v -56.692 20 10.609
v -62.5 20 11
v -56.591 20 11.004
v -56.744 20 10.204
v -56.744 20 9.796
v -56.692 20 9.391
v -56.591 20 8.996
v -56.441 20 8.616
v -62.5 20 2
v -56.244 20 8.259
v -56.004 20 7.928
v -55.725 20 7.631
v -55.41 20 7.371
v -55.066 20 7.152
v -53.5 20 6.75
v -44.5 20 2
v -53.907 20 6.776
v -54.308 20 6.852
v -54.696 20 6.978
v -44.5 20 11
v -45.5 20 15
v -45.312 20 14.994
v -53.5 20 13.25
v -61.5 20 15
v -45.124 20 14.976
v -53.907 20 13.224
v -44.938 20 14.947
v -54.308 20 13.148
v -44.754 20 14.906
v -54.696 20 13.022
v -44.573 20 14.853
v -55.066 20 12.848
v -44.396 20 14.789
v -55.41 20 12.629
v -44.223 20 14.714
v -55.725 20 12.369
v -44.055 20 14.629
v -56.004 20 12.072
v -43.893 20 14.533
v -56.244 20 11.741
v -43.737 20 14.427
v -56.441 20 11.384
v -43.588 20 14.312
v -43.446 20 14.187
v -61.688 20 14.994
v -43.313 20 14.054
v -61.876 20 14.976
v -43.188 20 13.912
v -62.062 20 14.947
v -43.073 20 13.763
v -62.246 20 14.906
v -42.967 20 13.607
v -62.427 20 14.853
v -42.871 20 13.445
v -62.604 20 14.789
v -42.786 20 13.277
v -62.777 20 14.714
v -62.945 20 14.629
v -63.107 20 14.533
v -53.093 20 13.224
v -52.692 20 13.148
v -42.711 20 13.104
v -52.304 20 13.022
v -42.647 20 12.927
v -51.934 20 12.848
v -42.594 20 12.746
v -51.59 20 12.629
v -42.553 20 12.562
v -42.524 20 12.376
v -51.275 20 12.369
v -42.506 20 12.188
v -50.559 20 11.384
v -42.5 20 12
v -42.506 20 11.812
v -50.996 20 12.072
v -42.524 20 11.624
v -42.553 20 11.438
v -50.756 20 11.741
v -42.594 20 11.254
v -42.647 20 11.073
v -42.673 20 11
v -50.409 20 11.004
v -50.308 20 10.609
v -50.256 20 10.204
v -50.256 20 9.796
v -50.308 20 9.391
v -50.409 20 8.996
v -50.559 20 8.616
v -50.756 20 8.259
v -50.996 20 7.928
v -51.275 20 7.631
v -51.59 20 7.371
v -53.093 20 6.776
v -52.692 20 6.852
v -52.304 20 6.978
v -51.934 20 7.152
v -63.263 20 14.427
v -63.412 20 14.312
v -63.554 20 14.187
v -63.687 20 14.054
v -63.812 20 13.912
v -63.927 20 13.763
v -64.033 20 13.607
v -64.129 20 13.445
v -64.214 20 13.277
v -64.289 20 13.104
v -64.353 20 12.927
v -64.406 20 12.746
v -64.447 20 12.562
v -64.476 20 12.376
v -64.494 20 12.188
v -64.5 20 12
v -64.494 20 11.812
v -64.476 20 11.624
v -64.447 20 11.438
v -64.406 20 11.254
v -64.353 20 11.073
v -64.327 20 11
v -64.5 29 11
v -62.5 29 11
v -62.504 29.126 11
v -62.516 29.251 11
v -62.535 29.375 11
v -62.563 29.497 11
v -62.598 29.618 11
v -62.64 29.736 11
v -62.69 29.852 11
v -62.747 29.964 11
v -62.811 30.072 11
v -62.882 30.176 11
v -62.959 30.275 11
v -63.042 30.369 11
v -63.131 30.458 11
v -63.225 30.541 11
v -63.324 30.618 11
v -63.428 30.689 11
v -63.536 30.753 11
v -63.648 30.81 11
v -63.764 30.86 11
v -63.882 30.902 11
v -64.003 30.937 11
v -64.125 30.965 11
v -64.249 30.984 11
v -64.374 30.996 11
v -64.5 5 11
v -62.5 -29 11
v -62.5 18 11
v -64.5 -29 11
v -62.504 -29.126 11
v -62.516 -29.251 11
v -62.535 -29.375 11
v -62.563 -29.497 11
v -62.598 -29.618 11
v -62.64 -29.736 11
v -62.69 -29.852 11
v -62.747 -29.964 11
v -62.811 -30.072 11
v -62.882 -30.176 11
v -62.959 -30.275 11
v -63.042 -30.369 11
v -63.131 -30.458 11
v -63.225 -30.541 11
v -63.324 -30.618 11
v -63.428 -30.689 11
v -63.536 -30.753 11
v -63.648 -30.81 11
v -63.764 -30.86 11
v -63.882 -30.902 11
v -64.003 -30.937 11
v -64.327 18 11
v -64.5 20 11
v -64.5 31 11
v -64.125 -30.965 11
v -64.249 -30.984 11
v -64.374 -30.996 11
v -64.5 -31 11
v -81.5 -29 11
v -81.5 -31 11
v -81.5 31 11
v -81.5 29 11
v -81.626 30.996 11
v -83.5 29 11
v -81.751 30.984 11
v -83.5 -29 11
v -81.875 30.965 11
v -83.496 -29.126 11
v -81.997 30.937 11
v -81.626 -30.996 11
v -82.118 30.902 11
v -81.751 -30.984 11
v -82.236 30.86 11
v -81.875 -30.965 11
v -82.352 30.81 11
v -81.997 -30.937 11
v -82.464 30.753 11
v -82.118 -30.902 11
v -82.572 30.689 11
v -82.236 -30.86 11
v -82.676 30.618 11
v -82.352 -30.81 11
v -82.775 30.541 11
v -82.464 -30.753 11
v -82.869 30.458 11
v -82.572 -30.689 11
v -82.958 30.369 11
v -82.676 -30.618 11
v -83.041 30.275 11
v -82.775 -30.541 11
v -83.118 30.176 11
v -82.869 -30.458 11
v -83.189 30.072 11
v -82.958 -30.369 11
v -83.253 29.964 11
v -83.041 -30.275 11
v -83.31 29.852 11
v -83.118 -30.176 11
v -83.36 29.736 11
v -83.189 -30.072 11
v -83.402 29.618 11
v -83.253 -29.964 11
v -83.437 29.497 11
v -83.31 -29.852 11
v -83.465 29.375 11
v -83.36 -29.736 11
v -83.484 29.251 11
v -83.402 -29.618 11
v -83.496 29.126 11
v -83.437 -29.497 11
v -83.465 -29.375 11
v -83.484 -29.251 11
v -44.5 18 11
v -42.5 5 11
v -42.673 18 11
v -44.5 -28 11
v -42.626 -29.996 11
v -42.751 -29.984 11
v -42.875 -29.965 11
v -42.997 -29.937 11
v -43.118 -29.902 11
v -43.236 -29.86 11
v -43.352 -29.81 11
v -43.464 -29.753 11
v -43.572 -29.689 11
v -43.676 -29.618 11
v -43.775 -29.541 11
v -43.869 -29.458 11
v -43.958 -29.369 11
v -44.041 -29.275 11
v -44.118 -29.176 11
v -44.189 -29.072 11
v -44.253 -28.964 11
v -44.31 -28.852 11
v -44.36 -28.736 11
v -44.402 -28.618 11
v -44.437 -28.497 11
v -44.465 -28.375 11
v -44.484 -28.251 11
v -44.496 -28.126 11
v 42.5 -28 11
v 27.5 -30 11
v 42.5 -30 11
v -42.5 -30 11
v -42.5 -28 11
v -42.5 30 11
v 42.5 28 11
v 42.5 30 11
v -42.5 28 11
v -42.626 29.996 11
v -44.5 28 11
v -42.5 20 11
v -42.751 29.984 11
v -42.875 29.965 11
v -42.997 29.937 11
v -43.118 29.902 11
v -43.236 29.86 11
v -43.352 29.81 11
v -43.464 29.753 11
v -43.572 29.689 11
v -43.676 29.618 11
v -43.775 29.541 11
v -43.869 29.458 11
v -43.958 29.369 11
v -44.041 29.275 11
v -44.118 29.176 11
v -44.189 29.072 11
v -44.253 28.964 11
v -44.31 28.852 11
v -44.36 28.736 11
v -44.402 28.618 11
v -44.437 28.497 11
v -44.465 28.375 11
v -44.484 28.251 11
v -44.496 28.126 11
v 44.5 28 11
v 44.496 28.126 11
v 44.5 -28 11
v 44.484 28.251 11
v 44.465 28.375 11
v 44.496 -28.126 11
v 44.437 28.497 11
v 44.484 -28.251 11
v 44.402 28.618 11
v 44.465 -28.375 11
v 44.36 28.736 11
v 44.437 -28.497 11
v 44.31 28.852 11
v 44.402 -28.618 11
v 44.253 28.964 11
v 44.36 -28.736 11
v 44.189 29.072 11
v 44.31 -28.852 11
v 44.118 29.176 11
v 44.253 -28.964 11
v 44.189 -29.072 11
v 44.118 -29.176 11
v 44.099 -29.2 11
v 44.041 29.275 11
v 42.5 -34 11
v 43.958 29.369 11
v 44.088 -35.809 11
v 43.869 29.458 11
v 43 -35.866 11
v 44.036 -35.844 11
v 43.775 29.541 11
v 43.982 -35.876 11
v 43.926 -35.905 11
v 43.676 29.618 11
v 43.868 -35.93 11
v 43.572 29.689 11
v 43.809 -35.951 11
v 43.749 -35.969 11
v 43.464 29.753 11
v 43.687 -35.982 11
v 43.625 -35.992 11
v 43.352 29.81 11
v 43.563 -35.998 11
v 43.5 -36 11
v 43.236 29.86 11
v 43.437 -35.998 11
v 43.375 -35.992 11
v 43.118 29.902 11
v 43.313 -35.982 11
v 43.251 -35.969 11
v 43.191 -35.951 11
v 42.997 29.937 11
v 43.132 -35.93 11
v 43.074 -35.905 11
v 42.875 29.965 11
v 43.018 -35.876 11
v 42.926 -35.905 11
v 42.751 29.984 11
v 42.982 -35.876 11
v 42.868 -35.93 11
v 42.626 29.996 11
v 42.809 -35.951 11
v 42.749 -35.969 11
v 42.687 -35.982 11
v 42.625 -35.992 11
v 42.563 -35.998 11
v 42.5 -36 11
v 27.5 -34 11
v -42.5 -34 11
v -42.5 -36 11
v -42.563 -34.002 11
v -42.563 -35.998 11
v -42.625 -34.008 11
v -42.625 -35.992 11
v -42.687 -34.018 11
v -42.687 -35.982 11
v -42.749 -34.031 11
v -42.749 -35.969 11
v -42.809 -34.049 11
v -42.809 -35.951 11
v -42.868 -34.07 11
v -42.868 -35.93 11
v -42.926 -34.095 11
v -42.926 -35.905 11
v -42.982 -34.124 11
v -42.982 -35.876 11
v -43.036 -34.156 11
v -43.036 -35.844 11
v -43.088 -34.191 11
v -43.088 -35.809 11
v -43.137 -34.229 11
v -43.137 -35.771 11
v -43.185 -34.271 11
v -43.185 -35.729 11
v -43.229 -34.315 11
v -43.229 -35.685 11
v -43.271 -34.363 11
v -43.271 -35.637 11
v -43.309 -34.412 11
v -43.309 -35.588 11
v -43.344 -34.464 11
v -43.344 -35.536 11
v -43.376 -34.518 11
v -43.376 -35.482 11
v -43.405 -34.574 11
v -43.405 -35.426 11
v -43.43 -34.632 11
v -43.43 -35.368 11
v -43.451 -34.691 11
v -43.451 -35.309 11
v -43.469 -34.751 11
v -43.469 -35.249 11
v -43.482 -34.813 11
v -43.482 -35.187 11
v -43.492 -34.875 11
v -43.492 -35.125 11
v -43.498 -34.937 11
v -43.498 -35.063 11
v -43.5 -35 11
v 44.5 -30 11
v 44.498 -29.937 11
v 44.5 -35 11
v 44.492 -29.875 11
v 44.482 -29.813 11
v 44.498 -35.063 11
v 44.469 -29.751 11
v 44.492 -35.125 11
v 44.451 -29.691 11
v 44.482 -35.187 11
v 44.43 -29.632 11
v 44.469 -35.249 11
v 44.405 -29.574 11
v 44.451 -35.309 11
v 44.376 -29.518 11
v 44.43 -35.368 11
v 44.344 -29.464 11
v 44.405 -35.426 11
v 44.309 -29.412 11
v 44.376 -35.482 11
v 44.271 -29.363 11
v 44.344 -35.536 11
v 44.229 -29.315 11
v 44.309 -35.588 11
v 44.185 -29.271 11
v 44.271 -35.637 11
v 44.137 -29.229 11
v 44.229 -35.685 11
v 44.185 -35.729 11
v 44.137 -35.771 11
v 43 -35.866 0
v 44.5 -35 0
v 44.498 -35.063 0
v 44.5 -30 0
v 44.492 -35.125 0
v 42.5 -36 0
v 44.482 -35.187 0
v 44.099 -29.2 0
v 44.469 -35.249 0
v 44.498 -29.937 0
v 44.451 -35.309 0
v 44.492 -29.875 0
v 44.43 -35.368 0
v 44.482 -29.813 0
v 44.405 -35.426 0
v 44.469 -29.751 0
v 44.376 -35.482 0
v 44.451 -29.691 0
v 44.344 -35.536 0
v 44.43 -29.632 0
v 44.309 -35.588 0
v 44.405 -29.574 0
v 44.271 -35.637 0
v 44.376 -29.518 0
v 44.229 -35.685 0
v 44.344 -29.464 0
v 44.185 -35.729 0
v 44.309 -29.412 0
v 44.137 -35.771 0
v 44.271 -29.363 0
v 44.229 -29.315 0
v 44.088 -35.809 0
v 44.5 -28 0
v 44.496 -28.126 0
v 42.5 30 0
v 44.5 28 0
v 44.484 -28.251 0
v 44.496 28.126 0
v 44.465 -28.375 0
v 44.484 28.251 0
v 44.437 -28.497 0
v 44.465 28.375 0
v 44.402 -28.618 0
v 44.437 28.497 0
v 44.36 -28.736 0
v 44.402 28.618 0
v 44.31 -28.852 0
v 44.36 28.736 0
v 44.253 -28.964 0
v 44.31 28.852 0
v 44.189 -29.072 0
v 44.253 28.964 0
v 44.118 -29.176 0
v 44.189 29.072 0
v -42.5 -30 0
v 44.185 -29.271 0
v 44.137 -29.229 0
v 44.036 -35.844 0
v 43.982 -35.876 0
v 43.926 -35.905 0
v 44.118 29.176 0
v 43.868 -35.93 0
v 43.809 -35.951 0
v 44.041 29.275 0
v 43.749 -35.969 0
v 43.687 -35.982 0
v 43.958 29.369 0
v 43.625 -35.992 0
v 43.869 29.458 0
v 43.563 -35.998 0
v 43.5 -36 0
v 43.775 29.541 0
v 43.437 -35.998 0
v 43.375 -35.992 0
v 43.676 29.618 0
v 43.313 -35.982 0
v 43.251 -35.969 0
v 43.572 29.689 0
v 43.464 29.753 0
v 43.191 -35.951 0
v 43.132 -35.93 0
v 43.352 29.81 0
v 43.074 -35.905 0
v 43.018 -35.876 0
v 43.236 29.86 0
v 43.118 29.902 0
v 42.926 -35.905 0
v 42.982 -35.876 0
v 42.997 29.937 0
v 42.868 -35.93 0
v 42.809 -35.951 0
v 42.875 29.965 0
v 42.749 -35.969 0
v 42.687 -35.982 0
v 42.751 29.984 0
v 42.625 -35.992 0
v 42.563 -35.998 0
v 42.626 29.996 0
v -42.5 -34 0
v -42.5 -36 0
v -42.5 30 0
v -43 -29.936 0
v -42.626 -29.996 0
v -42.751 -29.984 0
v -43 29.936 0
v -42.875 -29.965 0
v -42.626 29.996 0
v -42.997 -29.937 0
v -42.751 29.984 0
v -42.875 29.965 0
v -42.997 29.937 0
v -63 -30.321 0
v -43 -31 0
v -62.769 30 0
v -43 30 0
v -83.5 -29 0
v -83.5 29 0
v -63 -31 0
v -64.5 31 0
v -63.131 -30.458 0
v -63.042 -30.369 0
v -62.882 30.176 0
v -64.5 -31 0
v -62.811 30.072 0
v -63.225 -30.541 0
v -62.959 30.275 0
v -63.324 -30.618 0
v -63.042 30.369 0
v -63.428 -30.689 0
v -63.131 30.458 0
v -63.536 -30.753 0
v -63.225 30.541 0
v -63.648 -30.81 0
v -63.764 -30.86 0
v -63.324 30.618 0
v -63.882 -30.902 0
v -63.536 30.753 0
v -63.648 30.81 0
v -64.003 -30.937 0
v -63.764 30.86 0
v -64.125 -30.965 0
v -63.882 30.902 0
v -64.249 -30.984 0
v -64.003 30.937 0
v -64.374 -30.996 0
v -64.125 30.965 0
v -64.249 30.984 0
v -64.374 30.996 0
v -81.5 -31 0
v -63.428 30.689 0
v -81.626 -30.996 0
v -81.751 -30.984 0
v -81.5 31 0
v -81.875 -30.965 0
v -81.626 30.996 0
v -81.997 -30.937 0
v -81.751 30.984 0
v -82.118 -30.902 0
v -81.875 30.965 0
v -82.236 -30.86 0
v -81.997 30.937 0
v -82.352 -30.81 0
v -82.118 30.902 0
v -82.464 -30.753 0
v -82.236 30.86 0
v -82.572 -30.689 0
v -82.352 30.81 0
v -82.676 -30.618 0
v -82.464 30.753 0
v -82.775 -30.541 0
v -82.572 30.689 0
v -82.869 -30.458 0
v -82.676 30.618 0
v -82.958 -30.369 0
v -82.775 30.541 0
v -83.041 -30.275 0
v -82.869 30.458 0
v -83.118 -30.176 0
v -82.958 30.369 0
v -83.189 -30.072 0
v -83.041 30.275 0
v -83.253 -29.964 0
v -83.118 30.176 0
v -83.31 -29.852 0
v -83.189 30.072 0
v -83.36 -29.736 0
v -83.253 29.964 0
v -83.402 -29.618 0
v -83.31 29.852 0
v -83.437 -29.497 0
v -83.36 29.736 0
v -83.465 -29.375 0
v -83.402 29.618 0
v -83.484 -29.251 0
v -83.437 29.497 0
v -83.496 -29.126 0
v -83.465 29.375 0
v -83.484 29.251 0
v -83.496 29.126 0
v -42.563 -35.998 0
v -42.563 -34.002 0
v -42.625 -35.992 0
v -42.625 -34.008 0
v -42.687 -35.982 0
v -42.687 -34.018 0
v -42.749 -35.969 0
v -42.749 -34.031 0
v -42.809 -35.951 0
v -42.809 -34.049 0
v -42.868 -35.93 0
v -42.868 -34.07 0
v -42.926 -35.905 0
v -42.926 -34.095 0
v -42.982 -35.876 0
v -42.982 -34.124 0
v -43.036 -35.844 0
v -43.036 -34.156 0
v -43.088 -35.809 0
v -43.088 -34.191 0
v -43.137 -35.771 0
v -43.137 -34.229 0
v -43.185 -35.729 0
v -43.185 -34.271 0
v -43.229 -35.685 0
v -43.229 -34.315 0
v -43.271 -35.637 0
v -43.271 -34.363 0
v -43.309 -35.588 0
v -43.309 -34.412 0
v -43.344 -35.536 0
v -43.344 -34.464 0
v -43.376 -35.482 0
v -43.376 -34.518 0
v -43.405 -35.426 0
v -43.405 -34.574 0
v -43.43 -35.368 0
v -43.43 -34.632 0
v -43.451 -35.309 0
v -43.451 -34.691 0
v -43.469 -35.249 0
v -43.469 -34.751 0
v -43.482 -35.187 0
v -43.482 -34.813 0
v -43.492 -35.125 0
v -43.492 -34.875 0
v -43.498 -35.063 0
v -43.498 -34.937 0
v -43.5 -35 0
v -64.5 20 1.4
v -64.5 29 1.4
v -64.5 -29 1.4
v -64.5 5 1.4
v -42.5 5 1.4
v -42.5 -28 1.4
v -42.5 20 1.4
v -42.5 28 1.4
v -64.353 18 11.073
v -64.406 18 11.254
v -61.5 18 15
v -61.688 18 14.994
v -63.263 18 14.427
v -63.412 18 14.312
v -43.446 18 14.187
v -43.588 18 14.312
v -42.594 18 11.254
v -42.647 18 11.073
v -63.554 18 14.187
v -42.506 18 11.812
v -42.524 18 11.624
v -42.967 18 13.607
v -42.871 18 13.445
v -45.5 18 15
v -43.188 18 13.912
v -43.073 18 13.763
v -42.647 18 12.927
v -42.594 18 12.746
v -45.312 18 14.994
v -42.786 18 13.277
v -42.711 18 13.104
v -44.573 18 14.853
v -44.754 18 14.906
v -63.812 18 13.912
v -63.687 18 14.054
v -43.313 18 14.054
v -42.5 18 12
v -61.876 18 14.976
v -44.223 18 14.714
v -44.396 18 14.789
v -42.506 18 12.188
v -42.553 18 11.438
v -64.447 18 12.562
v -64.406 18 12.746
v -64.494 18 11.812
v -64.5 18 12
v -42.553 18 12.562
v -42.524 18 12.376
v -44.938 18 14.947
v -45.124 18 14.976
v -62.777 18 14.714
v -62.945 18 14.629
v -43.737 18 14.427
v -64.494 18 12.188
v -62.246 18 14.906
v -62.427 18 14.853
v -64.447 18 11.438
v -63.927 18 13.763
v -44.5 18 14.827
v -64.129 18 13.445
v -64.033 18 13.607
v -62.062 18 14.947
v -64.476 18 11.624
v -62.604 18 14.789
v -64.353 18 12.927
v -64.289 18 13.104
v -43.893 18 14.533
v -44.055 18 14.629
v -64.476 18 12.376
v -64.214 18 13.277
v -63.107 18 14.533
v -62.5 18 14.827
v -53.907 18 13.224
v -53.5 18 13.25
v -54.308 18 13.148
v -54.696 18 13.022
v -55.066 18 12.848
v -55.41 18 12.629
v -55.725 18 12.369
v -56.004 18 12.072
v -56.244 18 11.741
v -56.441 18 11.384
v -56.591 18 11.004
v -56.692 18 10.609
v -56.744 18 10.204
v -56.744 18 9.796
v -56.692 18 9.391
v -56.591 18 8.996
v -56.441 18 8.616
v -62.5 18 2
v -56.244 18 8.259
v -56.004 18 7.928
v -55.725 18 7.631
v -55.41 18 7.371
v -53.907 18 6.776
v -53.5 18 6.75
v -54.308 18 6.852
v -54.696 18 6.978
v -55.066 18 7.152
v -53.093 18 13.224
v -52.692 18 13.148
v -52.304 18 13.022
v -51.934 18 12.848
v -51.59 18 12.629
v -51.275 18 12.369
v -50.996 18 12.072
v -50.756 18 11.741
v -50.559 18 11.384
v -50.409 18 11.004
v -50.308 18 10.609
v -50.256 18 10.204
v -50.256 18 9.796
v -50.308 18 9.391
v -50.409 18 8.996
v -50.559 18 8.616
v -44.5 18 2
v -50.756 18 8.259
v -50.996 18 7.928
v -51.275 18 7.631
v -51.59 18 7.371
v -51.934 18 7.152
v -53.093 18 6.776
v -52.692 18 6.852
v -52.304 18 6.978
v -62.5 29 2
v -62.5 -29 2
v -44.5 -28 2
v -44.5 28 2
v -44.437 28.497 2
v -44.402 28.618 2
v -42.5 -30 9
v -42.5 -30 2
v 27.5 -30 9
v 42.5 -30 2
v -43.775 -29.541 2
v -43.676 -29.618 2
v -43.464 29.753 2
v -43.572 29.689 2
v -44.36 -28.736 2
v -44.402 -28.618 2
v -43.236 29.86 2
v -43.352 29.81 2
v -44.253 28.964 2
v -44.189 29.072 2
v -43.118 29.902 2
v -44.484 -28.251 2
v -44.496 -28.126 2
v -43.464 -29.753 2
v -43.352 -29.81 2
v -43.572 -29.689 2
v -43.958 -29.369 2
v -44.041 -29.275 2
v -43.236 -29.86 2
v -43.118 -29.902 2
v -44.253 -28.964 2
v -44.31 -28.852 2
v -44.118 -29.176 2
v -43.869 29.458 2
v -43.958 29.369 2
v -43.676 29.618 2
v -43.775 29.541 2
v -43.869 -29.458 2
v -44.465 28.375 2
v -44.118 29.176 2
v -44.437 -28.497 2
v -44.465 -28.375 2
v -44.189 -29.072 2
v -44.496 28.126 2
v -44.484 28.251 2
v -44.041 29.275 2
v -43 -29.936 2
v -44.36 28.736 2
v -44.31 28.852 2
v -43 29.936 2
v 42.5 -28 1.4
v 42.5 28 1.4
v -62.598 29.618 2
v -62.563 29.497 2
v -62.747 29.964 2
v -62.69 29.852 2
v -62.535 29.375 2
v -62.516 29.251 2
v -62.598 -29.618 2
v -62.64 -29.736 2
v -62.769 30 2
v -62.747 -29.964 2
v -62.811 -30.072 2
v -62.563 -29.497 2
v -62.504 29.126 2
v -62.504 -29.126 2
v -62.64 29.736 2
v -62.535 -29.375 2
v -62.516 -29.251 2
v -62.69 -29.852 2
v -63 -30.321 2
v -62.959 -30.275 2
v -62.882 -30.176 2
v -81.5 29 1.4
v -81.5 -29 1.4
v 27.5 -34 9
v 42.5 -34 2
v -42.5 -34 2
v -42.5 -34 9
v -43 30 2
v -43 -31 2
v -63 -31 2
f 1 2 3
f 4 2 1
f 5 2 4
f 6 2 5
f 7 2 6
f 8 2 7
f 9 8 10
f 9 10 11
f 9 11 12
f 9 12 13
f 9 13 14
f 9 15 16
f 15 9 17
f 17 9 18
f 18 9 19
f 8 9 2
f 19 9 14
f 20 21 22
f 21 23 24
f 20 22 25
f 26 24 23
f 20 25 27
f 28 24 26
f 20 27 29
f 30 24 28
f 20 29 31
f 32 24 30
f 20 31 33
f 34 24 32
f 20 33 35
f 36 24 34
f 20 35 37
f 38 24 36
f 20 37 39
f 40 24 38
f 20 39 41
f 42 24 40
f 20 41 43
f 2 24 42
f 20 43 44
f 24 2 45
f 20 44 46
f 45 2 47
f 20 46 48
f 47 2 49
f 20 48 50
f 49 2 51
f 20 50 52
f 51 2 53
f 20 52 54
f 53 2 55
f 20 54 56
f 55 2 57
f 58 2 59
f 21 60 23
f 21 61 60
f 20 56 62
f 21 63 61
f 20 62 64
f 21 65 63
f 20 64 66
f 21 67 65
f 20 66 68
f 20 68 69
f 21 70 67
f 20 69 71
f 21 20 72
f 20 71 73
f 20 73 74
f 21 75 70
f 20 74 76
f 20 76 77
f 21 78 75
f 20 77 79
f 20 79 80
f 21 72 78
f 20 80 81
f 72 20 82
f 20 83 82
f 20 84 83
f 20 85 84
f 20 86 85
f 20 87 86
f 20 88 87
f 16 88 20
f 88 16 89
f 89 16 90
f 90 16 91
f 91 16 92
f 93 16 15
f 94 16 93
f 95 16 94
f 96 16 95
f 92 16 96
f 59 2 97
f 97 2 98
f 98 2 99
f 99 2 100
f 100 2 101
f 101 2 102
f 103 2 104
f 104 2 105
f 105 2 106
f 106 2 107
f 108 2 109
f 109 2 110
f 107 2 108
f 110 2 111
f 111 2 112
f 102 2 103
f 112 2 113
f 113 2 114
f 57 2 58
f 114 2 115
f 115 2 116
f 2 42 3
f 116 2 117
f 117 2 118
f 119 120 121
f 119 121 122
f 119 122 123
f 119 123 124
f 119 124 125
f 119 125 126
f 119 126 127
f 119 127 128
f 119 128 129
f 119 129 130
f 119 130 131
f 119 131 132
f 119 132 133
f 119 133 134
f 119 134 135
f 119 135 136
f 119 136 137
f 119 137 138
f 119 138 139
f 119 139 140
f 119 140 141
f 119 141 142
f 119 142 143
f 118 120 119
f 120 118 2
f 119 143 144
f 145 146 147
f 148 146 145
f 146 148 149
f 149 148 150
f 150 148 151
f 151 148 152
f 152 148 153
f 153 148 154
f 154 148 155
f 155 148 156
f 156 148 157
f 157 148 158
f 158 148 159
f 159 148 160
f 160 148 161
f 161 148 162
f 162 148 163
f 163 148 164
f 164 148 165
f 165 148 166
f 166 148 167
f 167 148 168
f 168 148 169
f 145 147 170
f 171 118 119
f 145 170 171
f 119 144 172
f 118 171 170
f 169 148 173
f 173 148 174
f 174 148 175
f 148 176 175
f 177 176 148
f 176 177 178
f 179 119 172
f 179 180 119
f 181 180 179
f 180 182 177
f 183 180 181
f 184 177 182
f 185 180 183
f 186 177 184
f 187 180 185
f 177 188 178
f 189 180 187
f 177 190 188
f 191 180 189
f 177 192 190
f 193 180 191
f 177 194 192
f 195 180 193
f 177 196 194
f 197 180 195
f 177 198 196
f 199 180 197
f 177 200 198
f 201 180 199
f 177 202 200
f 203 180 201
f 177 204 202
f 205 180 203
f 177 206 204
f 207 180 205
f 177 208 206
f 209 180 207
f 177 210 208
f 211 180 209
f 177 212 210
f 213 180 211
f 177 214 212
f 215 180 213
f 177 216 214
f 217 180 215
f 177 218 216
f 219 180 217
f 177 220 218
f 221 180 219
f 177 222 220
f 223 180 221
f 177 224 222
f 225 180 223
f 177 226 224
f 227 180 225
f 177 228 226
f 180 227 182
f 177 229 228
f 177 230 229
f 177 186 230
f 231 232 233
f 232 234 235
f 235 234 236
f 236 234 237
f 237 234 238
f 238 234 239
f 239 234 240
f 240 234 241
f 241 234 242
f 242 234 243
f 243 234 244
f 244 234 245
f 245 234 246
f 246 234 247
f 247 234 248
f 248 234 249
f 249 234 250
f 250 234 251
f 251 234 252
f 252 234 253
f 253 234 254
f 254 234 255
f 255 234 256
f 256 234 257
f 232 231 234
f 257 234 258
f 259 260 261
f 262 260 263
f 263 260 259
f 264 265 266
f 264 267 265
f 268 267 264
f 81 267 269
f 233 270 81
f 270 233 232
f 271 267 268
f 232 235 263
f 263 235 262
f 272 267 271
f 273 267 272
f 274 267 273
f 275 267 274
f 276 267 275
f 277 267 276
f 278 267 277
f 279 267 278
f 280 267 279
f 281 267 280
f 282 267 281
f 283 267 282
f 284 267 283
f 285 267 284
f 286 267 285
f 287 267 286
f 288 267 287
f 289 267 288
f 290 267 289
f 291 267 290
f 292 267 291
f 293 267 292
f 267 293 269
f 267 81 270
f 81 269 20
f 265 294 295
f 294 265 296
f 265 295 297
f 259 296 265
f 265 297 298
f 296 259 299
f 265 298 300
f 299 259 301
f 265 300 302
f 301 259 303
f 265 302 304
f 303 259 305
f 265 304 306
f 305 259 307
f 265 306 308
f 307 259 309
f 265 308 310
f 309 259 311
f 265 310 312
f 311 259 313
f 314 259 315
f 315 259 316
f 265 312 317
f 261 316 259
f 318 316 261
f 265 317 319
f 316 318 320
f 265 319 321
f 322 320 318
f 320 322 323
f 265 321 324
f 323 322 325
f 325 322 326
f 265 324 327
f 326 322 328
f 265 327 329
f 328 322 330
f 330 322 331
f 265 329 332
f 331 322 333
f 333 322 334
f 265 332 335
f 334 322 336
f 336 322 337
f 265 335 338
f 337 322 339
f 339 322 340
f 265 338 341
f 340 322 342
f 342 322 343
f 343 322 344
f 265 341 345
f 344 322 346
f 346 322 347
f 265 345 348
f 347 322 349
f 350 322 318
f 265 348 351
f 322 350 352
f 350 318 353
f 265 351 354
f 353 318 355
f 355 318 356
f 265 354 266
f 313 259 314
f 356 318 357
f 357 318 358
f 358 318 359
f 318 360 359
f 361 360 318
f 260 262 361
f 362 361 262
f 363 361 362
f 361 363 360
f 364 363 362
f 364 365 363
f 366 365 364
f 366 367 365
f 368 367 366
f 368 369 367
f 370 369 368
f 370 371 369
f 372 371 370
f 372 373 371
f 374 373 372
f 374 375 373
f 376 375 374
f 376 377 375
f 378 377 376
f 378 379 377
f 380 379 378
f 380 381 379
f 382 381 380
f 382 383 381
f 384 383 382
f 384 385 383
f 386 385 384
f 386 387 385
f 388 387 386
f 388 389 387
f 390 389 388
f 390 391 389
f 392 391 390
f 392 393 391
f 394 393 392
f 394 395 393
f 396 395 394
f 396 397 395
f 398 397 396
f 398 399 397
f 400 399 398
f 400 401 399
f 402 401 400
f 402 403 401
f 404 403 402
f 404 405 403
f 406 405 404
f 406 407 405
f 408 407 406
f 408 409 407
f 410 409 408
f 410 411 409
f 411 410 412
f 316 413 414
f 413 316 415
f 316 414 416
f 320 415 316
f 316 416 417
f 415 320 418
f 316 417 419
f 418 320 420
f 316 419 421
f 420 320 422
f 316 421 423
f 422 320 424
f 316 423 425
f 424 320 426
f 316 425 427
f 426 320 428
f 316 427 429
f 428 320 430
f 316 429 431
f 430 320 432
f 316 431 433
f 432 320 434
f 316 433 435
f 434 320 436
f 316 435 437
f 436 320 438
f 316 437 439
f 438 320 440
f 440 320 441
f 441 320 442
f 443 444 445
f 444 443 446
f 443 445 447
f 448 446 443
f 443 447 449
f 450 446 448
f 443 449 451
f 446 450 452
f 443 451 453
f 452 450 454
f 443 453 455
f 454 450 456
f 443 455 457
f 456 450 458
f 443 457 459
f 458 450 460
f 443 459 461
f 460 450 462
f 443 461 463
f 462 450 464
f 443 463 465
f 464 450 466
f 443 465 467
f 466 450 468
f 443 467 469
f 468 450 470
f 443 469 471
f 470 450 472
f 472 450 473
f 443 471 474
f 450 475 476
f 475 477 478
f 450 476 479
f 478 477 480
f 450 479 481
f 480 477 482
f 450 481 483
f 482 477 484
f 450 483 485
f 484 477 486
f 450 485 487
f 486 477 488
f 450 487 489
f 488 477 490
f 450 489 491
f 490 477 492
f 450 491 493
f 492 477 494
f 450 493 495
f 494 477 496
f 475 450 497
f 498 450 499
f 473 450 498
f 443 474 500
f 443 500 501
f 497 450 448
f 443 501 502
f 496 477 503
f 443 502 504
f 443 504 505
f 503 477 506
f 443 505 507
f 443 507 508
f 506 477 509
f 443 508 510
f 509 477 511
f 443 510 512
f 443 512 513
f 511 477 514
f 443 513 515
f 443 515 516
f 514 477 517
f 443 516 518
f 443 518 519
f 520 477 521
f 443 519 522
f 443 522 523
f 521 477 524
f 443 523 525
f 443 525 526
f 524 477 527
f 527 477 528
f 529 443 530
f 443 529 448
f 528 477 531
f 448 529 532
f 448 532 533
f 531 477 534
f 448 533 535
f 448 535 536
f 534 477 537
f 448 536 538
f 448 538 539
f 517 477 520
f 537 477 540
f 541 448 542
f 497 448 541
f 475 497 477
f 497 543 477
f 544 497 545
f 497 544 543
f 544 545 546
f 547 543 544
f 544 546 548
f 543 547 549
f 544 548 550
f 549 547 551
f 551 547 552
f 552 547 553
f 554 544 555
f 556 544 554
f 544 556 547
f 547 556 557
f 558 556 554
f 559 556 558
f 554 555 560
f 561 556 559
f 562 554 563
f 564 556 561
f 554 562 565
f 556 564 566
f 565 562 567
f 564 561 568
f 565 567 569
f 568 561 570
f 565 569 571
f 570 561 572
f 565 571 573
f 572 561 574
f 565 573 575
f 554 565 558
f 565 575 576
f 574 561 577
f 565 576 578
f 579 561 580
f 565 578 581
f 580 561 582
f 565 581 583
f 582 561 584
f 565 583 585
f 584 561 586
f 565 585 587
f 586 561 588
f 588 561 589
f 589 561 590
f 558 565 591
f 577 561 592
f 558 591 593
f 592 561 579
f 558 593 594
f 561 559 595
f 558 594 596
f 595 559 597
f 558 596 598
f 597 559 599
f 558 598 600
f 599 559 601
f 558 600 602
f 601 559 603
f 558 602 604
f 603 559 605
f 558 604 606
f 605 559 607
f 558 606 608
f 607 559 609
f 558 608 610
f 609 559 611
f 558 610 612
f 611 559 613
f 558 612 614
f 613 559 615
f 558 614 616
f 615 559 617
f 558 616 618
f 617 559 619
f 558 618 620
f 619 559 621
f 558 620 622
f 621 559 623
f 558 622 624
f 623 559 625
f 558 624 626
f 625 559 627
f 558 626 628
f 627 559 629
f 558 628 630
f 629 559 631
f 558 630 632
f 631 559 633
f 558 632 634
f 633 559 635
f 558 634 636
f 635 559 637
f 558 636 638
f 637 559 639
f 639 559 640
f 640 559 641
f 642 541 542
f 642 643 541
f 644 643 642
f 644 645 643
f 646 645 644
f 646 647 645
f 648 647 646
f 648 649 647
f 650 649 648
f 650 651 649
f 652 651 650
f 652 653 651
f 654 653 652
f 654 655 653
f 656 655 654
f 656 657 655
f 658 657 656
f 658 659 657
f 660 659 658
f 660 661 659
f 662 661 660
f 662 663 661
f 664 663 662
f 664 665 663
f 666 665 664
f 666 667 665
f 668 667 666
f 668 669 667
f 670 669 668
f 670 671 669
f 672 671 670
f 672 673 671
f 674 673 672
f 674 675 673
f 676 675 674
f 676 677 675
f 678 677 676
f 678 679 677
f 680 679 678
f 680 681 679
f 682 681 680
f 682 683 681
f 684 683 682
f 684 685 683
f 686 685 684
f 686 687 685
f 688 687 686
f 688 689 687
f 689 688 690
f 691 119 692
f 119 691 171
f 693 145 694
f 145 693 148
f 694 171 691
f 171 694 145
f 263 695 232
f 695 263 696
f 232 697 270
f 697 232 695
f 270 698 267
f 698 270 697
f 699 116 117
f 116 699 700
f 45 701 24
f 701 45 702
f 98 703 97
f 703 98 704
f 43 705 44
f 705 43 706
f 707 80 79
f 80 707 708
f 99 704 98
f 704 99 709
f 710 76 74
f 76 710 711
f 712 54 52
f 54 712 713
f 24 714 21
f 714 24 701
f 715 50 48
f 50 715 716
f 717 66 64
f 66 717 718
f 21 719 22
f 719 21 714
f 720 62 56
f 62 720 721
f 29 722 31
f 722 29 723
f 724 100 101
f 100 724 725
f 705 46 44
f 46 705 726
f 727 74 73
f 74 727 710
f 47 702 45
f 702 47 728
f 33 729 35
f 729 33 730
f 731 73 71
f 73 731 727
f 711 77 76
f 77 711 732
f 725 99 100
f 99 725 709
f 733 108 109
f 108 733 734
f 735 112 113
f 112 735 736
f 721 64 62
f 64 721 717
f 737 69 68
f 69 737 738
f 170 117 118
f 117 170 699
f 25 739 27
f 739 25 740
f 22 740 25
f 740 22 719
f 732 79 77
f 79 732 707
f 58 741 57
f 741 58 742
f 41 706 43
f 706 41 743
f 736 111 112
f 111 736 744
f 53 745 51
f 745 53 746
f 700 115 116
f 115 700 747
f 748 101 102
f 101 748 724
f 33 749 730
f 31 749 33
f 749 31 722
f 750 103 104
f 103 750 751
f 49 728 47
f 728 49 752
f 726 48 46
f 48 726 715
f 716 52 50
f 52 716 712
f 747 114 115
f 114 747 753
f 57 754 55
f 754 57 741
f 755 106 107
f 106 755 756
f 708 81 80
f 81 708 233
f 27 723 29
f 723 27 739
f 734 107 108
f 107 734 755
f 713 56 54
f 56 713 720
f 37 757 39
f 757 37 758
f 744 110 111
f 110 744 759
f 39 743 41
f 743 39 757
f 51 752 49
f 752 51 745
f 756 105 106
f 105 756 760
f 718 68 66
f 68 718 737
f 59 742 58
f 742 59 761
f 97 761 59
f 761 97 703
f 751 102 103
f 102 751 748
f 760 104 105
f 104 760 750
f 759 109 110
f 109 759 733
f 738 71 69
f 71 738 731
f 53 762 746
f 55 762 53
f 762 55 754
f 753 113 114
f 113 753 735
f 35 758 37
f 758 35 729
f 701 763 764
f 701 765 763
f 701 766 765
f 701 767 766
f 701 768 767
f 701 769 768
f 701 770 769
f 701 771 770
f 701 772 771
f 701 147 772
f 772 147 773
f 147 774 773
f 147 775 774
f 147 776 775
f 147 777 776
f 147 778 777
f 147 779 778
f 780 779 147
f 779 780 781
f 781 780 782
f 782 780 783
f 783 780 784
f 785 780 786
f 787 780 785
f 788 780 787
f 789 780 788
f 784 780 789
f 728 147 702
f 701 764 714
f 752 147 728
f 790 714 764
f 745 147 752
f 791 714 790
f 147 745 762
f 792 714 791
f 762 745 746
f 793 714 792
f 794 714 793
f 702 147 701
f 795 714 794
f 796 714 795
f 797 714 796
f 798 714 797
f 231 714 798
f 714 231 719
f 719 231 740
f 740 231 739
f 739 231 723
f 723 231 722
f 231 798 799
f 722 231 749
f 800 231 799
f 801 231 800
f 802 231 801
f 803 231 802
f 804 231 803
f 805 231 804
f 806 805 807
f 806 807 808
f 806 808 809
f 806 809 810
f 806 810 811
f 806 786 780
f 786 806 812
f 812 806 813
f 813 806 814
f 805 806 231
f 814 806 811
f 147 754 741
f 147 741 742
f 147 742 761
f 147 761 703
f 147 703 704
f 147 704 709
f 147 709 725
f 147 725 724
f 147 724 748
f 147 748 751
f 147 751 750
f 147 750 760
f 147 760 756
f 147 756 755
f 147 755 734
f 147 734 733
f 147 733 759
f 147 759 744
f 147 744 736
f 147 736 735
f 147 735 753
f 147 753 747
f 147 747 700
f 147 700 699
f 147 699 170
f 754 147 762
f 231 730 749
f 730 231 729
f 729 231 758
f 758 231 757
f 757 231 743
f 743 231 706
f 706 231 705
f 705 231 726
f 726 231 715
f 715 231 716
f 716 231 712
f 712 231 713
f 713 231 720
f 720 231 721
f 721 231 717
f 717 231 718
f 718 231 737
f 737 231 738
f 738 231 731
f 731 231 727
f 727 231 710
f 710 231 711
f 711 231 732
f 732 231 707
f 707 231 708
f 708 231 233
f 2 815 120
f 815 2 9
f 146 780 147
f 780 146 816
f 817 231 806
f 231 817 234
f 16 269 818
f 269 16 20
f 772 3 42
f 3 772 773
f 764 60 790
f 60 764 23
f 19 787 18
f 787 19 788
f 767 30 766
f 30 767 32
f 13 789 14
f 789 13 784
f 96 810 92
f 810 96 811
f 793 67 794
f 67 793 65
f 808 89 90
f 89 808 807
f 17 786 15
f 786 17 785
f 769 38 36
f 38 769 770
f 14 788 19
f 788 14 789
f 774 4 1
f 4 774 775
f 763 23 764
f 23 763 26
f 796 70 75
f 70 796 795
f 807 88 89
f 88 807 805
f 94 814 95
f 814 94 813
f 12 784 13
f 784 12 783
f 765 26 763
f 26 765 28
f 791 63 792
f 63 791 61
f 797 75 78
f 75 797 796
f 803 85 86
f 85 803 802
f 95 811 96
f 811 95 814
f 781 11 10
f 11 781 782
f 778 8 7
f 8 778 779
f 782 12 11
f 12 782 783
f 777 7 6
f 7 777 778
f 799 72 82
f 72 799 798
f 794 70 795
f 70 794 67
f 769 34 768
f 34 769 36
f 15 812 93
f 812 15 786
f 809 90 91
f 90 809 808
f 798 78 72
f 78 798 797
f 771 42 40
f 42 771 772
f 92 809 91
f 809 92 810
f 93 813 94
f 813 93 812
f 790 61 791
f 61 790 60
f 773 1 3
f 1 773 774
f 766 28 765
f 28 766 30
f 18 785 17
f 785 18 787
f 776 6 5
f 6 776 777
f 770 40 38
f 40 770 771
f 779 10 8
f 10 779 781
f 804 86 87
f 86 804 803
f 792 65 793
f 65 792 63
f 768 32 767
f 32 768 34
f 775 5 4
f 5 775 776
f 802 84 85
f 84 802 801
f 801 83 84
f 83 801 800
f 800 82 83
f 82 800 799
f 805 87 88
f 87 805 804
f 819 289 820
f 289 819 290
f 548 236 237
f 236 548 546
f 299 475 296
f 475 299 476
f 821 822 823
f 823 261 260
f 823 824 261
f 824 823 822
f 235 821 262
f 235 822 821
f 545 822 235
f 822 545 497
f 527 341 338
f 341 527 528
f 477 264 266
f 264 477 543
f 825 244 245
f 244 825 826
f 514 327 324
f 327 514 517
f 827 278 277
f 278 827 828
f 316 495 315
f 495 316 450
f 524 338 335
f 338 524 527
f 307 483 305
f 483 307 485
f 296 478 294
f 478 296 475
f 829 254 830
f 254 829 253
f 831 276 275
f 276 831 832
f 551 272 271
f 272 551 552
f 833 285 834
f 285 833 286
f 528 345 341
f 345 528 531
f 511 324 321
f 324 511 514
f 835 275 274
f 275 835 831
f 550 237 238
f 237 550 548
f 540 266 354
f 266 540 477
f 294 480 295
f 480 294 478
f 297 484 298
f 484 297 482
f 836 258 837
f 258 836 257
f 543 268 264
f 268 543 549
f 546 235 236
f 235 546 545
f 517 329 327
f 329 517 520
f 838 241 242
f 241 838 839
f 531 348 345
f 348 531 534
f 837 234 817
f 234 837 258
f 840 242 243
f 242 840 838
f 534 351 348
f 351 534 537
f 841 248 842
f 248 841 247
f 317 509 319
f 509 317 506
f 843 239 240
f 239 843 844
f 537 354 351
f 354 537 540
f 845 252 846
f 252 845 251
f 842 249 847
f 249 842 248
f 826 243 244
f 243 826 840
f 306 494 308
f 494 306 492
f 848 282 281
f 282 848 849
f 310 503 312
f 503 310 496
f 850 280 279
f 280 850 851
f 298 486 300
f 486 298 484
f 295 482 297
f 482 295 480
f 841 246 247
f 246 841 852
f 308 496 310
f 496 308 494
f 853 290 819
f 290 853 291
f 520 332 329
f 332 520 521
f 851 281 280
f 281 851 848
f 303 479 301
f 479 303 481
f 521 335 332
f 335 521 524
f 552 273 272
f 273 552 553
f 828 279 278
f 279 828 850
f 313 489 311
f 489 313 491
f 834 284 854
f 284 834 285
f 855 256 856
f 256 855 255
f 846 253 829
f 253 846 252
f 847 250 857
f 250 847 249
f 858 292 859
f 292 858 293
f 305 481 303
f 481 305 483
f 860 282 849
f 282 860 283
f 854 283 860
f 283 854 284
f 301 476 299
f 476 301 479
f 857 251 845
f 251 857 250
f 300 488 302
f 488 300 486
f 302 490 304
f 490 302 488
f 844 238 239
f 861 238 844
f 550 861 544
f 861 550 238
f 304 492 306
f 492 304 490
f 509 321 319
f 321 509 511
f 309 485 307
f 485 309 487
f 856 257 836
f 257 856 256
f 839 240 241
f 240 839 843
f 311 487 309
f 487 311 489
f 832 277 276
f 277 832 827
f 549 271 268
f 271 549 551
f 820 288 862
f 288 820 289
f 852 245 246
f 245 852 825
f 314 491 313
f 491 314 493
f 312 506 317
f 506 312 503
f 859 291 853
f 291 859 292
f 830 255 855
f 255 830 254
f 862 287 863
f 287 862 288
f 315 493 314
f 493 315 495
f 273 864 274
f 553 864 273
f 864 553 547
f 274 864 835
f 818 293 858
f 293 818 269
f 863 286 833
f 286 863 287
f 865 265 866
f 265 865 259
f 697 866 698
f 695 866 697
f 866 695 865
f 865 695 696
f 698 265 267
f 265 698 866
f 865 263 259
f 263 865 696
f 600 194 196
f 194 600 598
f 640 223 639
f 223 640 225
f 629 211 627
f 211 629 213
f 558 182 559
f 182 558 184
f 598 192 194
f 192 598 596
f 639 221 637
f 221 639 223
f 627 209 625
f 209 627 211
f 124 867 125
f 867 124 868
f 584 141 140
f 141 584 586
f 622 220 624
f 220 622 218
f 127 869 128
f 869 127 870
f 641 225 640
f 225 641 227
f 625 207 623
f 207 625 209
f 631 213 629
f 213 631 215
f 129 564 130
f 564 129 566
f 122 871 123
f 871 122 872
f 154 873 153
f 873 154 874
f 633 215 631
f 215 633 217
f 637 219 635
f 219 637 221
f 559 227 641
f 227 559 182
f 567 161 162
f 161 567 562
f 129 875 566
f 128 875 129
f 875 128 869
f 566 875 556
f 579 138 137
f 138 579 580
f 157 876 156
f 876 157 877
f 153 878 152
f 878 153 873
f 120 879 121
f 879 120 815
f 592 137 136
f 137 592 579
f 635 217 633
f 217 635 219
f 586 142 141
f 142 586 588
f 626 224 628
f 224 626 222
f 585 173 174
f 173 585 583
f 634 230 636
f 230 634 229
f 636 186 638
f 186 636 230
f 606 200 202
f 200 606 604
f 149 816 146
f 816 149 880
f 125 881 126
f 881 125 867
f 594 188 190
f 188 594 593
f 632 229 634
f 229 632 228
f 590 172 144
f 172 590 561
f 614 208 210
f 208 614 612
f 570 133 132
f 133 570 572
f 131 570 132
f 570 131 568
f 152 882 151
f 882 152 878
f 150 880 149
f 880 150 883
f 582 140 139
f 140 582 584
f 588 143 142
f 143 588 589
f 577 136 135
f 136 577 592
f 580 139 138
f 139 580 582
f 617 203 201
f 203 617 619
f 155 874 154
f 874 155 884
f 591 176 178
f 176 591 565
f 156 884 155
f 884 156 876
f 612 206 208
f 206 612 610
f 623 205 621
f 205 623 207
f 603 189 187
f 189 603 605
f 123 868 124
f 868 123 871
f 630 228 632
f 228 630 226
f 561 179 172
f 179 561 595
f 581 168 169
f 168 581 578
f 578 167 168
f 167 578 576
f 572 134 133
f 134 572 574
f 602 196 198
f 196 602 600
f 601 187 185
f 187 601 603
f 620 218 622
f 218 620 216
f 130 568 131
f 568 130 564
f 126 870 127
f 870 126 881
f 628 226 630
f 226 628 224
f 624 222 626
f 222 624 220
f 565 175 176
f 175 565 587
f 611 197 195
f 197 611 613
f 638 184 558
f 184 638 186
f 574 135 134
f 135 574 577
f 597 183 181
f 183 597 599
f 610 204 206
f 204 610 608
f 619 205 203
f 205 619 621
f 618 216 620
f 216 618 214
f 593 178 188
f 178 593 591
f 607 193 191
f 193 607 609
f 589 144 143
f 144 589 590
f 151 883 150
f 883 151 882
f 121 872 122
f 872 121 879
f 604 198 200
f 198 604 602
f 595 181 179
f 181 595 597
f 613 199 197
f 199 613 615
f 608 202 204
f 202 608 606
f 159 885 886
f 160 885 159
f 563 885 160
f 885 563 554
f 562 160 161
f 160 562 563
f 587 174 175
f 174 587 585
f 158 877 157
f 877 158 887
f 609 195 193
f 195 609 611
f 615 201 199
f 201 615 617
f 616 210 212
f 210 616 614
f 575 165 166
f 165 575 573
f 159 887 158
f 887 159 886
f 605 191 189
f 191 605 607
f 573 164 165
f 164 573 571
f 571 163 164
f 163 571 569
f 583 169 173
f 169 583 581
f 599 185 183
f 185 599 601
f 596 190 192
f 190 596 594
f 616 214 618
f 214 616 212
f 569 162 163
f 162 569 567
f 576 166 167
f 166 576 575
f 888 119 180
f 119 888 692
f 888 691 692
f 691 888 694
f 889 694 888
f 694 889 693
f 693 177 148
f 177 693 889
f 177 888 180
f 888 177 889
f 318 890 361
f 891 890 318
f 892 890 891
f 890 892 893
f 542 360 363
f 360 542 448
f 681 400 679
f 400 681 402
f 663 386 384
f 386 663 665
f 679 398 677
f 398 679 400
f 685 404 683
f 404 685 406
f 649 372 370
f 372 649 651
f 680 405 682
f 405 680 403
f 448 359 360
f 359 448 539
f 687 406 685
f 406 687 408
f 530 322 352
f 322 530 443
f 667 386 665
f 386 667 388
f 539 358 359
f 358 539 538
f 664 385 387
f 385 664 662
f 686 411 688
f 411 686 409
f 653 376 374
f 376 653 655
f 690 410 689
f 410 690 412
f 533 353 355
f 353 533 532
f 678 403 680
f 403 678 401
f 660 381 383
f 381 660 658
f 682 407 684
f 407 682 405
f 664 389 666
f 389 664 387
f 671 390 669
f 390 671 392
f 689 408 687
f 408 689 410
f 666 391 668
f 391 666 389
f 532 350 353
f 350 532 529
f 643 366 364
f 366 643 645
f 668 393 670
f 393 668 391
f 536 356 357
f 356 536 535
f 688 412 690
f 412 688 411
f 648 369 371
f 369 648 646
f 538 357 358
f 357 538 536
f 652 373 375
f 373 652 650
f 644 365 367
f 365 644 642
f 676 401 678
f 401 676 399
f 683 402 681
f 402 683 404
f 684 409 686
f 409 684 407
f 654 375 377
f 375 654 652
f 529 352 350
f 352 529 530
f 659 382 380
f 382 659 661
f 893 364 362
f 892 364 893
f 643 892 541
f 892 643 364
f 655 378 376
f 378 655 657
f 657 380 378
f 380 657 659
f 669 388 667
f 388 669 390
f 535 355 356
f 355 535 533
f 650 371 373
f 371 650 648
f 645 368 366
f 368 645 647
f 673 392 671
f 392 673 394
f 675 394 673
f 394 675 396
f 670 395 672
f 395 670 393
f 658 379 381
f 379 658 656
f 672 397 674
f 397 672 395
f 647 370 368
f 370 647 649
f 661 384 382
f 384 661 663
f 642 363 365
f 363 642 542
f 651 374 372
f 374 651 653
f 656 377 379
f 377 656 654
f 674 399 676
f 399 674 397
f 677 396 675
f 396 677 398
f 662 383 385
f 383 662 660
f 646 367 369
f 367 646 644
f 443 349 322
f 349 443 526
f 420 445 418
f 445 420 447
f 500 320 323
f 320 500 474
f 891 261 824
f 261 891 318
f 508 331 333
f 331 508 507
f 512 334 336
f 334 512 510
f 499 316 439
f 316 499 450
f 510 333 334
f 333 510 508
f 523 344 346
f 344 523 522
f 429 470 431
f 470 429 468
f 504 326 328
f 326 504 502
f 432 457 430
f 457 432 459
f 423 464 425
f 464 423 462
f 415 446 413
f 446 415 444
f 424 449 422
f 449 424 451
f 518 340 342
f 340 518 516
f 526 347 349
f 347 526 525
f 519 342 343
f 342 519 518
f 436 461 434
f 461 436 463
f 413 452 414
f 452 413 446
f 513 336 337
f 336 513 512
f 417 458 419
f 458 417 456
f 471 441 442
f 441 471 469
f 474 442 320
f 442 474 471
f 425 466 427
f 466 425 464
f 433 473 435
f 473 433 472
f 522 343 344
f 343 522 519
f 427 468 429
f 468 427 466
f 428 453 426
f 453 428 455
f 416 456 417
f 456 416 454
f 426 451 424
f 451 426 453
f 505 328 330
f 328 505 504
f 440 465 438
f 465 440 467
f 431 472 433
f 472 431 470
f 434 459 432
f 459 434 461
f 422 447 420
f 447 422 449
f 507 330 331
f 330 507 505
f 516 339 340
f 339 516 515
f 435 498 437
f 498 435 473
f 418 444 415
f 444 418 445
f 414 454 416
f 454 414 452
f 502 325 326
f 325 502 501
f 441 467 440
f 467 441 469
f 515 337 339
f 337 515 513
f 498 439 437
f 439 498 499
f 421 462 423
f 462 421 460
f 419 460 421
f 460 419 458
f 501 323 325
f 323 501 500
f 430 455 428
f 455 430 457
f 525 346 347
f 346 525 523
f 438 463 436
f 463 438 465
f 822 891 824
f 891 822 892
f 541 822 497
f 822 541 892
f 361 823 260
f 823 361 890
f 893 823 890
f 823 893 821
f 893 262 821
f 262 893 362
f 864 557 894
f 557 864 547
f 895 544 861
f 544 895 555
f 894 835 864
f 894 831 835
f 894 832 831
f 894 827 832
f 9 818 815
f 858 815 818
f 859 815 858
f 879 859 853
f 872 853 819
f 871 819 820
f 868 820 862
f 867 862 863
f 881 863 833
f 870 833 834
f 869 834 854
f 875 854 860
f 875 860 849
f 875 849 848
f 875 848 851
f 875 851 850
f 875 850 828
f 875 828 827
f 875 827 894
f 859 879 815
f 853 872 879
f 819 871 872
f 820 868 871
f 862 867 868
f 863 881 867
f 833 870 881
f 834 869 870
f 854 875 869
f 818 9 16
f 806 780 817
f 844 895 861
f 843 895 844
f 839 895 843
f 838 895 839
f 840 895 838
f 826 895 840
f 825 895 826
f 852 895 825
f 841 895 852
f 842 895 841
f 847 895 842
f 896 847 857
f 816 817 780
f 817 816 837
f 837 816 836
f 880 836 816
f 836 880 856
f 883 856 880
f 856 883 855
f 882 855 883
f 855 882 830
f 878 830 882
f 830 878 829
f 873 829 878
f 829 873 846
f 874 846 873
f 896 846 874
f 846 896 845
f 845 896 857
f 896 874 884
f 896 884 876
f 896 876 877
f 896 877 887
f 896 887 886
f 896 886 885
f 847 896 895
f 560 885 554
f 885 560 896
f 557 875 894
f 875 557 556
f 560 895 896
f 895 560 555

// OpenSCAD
//MIT-Lizence
$fn=100;
module breadboardrahmen(){
difference(){
    hull(){
    translate([-85/2,-56/2,0])cylinder(r=2,h=11);
    translate([85/2,-56/2,0])cylinder(r=2,h=11);
    translate([-85/2,56/2,0])cylinder(r=2,h=11);
    translate([85/2,56/2,0])cylinder(r=2,h=11);
    };
    translate([-85/2,-56/2,1.4])cube([85,56,11]);
};
};
module schalter(){
difference(){
    union(){
    translate([90,0,0])cube([15,22,11]);
   hull(){
       translate([103,3,12])rotate([0,90,0])cylinder(r=3,h=2);
       translate([103,19,12])rotate([0,90,0])cylinder(r=3,h=2);
   };
    };
    translate([83,2,1.5])cube([20,18,15]);
    translate([100,11,10])rotate([0,90,0])cylinder(d=6.5,h=10,$fn=50);
};
};
module batteriehalter(){
    difference(){
    hull(){
        translate([-58/2,-17/2,0])cylinder(r=2,h=11);
        translate([58/2,-17/2,0])cylinder(r=2,h=11);
        translate([-58/2,17/2,0])cylinder(r=2,h=11);
        translate([58/2,17/2,0])cylinder(r=2,h=11);
    };
    translate([-58/2,-17/2,1.4])cube([58,17,11]);
};
};

translate([-85/2,-85,0])rotate([0,0,90])schalter();
breadboardrahmen();
translate([0,-35,0])hull(){
    translate([-85/2,0,0])cylinder(r=1,h=11);
    translate([85/2,0,0])cylinder(r=1,h=11);
};  
hull(){
    translate([87/2,-35,0])cylinder(r=1,h=11);
    translate([87/2,-30,0])cylinder(r=1,h=11);
};
translate([-85/2,-35,0])cube([85,5,2]);
translate([-85/2,-35,9])cube([70,5,2]);
rotate([0,0,90])translate([0,73,0])batteriehalter();
translate([-63,-31,0])cube([20,61,2]);
